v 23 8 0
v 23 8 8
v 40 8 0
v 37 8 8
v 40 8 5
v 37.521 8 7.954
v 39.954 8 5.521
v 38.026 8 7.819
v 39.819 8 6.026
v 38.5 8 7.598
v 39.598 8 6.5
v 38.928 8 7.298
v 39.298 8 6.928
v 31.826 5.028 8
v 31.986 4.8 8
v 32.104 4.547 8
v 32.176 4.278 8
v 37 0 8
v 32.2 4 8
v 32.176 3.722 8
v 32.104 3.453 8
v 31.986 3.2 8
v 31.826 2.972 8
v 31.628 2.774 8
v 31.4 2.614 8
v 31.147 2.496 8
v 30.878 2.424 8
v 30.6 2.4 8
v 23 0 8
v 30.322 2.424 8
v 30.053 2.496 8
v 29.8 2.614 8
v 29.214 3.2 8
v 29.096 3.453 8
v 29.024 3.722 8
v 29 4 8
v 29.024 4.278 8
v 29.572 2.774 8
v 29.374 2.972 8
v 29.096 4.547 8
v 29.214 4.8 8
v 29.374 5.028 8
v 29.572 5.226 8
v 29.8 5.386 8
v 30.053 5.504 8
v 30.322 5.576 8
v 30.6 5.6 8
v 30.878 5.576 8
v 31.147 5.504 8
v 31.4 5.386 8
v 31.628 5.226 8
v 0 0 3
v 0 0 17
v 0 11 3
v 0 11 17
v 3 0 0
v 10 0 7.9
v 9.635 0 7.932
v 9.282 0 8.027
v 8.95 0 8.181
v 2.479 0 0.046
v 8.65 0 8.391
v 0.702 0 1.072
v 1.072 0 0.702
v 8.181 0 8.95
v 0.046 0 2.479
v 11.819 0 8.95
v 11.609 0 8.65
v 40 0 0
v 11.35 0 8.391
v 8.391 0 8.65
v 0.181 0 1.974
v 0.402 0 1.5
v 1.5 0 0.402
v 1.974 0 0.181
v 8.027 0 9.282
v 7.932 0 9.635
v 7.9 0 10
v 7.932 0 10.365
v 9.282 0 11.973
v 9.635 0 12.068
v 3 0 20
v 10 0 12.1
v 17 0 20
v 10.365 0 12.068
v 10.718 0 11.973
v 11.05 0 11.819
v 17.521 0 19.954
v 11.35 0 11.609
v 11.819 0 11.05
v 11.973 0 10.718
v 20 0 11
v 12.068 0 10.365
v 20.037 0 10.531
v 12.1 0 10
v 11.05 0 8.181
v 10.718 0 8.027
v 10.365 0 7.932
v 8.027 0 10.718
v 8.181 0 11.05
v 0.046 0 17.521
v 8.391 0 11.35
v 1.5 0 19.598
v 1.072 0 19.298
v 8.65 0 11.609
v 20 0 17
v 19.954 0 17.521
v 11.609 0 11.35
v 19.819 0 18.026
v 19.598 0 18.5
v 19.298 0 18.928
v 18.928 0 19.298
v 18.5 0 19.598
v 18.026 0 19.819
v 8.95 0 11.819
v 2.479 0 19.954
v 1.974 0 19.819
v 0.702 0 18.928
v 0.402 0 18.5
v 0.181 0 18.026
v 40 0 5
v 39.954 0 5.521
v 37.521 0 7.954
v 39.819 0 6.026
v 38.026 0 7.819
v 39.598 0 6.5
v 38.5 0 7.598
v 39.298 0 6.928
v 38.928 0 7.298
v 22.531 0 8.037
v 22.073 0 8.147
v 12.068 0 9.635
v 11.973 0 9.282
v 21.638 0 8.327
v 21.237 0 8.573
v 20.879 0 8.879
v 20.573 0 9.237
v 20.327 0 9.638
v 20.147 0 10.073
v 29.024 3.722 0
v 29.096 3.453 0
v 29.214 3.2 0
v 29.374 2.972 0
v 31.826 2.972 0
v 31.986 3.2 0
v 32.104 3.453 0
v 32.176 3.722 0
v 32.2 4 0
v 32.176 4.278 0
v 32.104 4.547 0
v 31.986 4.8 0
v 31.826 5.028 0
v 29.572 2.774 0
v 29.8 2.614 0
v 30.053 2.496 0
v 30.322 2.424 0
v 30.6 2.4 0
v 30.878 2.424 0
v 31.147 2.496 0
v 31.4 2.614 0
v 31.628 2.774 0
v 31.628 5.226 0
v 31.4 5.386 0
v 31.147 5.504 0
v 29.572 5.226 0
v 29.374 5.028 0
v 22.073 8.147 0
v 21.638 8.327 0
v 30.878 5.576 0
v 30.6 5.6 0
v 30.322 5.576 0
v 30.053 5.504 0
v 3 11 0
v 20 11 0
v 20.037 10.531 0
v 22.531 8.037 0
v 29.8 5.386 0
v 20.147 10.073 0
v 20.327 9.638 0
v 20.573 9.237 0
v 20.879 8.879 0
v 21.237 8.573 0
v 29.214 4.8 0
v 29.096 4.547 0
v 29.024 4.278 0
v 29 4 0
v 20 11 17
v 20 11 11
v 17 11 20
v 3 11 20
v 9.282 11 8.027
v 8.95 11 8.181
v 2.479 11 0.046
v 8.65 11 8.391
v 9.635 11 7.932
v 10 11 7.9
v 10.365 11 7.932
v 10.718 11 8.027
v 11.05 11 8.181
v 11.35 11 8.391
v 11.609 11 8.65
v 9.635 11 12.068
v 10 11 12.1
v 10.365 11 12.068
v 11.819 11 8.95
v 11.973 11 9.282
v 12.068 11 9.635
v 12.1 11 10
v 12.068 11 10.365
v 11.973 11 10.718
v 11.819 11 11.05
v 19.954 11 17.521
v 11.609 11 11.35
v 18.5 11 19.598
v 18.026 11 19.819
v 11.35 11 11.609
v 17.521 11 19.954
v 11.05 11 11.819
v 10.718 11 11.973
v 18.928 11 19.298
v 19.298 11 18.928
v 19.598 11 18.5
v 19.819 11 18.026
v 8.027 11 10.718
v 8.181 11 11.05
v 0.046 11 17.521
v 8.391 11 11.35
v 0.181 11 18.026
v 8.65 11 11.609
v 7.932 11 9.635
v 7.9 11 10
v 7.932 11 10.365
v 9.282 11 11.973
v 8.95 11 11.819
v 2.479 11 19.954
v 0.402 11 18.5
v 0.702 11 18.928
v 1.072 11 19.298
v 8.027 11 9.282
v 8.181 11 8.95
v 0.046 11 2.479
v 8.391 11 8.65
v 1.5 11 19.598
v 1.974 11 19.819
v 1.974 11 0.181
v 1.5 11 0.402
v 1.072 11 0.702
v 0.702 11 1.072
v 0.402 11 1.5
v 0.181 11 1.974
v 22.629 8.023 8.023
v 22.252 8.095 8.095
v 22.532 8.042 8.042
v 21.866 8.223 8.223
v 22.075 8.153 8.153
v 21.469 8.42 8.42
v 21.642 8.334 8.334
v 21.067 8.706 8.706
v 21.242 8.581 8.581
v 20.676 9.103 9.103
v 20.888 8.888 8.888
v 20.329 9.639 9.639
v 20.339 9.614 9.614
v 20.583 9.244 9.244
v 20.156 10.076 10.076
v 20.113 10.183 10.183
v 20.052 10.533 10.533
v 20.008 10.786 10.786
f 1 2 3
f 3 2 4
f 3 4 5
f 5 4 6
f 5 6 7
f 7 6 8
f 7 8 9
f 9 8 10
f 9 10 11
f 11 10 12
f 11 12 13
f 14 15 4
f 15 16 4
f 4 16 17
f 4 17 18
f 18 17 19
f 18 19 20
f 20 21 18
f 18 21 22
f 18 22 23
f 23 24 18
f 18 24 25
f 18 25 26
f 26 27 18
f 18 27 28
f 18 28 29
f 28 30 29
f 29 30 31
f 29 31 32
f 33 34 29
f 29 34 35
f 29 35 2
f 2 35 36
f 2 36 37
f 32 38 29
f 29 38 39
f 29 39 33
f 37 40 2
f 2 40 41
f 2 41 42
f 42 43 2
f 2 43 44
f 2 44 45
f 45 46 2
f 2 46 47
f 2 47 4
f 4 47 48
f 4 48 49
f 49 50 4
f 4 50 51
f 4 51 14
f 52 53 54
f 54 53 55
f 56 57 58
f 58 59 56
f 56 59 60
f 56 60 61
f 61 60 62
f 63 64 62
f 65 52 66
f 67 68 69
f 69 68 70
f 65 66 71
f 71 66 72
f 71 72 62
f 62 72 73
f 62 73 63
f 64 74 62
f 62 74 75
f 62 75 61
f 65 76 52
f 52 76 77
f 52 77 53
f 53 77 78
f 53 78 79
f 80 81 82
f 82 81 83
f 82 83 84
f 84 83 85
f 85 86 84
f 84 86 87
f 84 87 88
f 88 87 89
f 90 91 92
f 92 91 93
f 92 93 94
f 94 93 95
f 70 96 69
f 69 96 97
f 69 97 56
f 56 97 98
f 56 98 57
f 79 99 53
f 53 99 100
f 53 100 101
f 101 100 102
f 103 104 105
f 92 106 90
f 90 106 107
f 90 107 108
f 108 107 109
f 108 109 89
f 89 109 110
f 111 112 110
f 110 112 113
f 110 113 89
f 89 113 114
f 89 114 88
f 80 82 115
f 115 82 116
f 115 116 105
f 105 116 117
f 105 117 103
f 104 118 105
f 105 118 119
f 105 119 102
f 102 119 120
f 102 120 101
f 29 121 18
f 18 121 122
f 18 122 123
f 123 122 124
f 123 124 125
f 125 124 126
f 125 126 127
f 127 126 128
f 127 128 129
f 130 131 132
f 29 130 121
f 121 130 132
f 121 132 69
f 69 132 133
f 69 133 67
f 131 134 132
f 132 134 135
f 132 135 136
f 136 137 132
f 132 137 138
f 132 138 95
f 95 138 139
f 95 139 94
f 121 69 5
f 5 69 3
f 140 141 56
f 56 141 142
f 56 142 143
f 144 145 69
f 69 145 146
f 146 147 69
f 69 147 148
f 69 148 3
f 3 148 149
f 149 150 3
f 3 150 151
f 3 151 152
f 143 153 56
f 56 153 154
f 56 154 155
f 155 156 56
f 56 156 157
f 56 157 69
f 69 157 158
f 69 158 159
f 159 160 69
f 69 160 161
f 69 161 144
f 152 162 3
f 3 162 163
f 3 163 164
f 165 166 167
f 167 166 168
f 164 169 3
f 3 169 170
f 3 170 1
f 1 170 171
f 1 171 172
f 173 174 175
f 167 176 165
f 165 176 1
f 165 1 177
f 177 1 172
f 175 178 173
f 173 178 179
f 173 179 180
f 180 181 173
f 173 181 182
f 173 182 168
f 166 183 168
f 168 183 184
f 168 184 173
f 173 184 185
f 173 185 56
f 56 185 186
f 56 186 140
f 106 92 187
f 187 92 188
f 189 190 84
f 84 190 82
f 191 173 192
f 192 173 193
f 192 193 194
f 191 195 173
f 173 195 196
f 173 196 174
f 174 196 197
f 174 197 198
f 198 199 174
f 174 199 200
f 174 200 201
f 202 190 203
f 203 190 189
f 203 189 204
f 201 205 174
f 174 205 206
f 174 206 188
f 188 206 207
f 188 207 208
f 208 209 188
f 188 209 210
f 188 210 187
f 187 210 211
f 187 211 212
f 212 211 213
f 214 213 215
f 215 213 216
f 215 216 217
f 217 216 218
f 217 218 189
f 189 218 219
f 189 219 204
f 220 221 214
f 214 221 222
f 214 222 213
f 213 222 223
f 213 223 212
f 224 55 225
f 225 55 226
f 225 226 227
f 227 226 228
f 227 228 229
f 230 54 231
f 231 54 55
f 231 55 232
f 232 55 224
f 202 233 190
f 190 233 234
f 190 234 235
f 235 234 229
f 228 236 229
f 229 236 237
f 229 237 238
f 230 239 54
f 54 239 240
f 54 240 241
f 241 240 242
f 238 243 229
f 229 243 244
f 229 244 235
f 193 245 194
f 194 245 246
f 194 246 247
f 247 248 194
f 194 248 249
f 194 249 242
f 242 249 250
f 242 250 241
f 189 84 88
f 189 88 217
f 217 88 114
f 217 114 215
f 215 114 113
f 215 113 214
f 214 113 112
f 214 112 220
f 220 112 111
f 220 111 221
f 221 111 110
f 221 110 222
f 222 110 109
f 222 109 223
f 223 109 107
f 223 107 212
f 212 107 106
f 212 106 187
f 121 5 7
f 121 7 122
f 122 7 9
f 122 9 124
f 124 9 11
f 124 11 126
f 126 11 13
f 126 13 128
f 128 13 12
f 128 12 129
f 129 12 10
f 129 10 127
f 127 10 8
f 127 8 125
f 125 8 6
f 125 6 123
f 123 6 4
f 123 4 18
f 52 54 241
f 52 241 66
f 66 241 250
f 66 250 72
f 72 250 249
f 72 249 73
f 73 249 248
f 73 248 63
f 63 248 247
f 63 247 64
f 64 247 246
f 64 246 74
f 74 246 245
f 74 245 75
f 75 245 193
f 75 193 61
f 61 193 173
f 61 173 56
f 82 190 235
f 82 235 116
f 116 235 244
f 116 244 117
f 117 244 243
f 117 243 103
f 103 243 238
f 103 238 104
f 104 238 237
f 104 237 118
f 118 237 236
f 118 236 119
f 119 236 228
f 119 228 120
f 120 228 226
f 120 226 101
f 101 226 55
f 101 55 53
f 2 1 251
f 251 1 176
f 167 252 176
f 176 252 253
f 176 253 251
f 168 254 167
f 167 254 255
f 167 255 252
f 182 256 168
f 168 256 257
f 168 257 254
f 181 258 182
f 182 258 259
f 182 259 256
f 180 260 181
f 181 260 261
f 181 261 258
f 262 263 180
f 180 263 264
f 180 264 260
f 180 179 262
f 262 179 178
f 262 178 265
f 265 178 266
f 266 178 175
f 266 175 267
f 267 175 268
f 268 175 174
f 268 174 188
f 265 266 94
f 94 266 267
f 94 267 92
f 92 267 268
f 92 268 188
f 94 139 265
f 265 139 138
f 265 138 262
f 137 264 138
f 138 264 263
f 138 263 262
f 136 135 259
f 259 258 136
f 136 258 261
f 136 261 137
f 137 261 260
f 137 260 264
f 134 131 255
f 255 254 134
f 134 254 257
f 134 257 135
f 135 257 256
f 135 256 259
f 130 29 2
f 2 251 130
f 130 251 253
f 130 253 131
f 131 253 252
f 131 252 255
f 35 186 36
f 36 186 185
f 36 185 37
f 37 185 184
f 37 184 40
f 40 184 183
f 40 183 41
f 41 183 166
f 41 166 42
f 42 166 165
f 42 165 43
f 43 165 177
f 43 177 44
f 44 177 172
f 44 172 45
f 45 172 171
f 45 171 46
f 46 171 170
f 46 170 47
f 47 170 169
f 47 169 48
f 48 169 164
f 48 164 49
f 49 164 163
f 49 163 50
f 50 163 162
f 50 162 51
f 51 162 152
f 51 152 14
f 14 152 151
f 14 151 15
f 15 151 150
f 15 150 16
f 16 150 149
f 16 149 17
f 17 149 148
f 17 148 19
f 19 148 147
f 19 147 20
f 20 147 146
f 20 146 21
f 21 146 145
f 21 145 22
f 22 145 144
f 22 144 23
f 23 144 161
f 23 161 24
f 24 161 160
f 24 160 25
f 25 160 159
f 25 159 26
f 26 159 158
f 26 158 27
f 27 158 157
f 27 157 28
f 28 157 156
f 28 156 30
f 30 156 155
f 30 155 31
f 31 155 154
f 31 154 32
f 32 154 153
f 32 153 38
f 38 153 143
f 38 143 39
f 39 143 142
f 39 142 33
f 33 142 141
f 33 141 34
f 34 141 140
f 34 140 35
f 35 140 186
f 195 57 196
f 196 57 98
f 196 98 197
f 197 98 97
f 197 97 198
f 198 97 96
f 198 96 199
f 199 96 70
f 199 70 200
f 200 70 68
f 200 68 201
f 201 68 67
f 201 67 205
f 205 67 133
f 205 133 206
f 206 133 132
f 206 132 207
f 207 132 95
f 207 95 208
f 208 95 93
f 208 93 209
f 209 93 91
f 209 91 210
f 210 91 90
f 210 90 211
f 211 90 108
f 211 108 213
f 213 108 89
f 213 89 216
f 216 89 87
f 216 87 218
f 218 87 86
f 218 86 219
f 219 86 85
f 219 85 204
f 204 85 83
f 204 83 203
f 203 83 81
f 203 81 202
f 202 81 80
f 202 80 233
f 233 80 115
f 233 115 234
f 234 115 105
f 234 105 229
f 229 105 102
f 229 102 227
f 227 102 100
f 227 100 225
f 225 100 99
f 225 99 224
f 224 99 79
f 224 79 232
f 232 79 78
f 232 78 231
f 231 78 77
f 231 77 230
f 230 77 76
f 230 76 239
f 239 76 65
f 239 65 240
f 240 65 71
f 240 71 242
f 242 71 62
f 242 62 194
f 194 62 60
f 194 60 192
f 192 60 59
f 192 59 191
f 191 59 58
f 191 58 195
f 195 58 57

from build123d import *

# Parameters (mm, degrees)
ESQUISSE1_W             = 40
ESQUISSE1_H             = 8
BOSS_EXTRU_1_DEPTH      = 8
ESQUISSE2_W             = 20
ESQUISSE2_H             = 8
BOSS_EXTRU_2_DEPTH      = 12
ESQUISSE3_W             = 20
ESQUISSE3_H             = 20
BOSS_EXTRU_3_DEPTH      = 3
CONG_1_R                = 3
ESQUISSE4_R             = 1.6
ENL_V_MAT_EXTRU_1_DEPTH = 47.054315759
ESQUISSE5_R             = 2.1
ENL_V_MAT_EXTRU_2_DEPTH = 47.054315759


with BuildPart() as part:
    # Esquisse1 → Boss.-Extru.1 (new body)
    with BuildSketch(Plane.XY):
        with Locations((20, 4)):
            Rectangle(ESQUISSE1_W, ESQUISSE1_H)
    extrude(amount=BOSS_EXTRU_1_DEPTH)

    # Esquisse2 → Boss.-Extru.2 (add)
    with BuildSketch(Plane.XY.offset(8)):
        with Locations((10, 4)):
            Rectangle(ESQUISSE2_W, ESQUISSE2_H)
    extrude(amount=BOSS_EXTRU_2_DEPTH)

    # Esquisse3 → Boss.-Extru.3 (add)
    with BuildSketch(Plane(origin=(0, 8, 0), x_dir=(1, 0, 0), z_dir=(0, 1, 0))):
        with Locations((10, -10)):
            Rectangle(ESQUISSE3_W, ESQUISSE3_H)
    extrude(amount=BOSS_EXTRU_3_DEPTH)

    # Congé1
    cong_1_edges = [part.edges().sort_by_distance(p)[0] for p in [
        (20, 5.5, 20),
        (40, 4, 8),
        (0, 5.5, 0),
        (0, 5.5, 20),
        (20, 4, 8),
        (20, 8, 4),
    ]]
    fillet(cong_1_edges, radius=CONG_1_R - 0.0001)  # a hair under: the kernel refuses the full size

    # Esquisse4 → Enlèv. mat.-Extru.1 (cut, through all)
    with BuildSketch(Plane(origin=(0, 0, 0), x_dir=(-1, 0, 0), z_dir=(0, 0, -1))):
        with Locations((-30.6, 4)):
            Circle(ESQUISSE4_R)
    extrude(amount=-ENL_V_MAT_EXTRU_1_DEPTH, mode=Mode.SUBTRACT)

    # Esquisse5 → Enlèv. mat.-Extru.2 (cut, through all)
    with BuildSketch(Plane.XZ):
        with Locations(Location((10, 10, 0), (0, 0, 270))):
            Circle(ESQUISSE5_R)
    extrude(amount=-ENL_V_MAT_EXTRU_2_DEPTH, mode=Mode.SUBTRACT)


solid = part.part
